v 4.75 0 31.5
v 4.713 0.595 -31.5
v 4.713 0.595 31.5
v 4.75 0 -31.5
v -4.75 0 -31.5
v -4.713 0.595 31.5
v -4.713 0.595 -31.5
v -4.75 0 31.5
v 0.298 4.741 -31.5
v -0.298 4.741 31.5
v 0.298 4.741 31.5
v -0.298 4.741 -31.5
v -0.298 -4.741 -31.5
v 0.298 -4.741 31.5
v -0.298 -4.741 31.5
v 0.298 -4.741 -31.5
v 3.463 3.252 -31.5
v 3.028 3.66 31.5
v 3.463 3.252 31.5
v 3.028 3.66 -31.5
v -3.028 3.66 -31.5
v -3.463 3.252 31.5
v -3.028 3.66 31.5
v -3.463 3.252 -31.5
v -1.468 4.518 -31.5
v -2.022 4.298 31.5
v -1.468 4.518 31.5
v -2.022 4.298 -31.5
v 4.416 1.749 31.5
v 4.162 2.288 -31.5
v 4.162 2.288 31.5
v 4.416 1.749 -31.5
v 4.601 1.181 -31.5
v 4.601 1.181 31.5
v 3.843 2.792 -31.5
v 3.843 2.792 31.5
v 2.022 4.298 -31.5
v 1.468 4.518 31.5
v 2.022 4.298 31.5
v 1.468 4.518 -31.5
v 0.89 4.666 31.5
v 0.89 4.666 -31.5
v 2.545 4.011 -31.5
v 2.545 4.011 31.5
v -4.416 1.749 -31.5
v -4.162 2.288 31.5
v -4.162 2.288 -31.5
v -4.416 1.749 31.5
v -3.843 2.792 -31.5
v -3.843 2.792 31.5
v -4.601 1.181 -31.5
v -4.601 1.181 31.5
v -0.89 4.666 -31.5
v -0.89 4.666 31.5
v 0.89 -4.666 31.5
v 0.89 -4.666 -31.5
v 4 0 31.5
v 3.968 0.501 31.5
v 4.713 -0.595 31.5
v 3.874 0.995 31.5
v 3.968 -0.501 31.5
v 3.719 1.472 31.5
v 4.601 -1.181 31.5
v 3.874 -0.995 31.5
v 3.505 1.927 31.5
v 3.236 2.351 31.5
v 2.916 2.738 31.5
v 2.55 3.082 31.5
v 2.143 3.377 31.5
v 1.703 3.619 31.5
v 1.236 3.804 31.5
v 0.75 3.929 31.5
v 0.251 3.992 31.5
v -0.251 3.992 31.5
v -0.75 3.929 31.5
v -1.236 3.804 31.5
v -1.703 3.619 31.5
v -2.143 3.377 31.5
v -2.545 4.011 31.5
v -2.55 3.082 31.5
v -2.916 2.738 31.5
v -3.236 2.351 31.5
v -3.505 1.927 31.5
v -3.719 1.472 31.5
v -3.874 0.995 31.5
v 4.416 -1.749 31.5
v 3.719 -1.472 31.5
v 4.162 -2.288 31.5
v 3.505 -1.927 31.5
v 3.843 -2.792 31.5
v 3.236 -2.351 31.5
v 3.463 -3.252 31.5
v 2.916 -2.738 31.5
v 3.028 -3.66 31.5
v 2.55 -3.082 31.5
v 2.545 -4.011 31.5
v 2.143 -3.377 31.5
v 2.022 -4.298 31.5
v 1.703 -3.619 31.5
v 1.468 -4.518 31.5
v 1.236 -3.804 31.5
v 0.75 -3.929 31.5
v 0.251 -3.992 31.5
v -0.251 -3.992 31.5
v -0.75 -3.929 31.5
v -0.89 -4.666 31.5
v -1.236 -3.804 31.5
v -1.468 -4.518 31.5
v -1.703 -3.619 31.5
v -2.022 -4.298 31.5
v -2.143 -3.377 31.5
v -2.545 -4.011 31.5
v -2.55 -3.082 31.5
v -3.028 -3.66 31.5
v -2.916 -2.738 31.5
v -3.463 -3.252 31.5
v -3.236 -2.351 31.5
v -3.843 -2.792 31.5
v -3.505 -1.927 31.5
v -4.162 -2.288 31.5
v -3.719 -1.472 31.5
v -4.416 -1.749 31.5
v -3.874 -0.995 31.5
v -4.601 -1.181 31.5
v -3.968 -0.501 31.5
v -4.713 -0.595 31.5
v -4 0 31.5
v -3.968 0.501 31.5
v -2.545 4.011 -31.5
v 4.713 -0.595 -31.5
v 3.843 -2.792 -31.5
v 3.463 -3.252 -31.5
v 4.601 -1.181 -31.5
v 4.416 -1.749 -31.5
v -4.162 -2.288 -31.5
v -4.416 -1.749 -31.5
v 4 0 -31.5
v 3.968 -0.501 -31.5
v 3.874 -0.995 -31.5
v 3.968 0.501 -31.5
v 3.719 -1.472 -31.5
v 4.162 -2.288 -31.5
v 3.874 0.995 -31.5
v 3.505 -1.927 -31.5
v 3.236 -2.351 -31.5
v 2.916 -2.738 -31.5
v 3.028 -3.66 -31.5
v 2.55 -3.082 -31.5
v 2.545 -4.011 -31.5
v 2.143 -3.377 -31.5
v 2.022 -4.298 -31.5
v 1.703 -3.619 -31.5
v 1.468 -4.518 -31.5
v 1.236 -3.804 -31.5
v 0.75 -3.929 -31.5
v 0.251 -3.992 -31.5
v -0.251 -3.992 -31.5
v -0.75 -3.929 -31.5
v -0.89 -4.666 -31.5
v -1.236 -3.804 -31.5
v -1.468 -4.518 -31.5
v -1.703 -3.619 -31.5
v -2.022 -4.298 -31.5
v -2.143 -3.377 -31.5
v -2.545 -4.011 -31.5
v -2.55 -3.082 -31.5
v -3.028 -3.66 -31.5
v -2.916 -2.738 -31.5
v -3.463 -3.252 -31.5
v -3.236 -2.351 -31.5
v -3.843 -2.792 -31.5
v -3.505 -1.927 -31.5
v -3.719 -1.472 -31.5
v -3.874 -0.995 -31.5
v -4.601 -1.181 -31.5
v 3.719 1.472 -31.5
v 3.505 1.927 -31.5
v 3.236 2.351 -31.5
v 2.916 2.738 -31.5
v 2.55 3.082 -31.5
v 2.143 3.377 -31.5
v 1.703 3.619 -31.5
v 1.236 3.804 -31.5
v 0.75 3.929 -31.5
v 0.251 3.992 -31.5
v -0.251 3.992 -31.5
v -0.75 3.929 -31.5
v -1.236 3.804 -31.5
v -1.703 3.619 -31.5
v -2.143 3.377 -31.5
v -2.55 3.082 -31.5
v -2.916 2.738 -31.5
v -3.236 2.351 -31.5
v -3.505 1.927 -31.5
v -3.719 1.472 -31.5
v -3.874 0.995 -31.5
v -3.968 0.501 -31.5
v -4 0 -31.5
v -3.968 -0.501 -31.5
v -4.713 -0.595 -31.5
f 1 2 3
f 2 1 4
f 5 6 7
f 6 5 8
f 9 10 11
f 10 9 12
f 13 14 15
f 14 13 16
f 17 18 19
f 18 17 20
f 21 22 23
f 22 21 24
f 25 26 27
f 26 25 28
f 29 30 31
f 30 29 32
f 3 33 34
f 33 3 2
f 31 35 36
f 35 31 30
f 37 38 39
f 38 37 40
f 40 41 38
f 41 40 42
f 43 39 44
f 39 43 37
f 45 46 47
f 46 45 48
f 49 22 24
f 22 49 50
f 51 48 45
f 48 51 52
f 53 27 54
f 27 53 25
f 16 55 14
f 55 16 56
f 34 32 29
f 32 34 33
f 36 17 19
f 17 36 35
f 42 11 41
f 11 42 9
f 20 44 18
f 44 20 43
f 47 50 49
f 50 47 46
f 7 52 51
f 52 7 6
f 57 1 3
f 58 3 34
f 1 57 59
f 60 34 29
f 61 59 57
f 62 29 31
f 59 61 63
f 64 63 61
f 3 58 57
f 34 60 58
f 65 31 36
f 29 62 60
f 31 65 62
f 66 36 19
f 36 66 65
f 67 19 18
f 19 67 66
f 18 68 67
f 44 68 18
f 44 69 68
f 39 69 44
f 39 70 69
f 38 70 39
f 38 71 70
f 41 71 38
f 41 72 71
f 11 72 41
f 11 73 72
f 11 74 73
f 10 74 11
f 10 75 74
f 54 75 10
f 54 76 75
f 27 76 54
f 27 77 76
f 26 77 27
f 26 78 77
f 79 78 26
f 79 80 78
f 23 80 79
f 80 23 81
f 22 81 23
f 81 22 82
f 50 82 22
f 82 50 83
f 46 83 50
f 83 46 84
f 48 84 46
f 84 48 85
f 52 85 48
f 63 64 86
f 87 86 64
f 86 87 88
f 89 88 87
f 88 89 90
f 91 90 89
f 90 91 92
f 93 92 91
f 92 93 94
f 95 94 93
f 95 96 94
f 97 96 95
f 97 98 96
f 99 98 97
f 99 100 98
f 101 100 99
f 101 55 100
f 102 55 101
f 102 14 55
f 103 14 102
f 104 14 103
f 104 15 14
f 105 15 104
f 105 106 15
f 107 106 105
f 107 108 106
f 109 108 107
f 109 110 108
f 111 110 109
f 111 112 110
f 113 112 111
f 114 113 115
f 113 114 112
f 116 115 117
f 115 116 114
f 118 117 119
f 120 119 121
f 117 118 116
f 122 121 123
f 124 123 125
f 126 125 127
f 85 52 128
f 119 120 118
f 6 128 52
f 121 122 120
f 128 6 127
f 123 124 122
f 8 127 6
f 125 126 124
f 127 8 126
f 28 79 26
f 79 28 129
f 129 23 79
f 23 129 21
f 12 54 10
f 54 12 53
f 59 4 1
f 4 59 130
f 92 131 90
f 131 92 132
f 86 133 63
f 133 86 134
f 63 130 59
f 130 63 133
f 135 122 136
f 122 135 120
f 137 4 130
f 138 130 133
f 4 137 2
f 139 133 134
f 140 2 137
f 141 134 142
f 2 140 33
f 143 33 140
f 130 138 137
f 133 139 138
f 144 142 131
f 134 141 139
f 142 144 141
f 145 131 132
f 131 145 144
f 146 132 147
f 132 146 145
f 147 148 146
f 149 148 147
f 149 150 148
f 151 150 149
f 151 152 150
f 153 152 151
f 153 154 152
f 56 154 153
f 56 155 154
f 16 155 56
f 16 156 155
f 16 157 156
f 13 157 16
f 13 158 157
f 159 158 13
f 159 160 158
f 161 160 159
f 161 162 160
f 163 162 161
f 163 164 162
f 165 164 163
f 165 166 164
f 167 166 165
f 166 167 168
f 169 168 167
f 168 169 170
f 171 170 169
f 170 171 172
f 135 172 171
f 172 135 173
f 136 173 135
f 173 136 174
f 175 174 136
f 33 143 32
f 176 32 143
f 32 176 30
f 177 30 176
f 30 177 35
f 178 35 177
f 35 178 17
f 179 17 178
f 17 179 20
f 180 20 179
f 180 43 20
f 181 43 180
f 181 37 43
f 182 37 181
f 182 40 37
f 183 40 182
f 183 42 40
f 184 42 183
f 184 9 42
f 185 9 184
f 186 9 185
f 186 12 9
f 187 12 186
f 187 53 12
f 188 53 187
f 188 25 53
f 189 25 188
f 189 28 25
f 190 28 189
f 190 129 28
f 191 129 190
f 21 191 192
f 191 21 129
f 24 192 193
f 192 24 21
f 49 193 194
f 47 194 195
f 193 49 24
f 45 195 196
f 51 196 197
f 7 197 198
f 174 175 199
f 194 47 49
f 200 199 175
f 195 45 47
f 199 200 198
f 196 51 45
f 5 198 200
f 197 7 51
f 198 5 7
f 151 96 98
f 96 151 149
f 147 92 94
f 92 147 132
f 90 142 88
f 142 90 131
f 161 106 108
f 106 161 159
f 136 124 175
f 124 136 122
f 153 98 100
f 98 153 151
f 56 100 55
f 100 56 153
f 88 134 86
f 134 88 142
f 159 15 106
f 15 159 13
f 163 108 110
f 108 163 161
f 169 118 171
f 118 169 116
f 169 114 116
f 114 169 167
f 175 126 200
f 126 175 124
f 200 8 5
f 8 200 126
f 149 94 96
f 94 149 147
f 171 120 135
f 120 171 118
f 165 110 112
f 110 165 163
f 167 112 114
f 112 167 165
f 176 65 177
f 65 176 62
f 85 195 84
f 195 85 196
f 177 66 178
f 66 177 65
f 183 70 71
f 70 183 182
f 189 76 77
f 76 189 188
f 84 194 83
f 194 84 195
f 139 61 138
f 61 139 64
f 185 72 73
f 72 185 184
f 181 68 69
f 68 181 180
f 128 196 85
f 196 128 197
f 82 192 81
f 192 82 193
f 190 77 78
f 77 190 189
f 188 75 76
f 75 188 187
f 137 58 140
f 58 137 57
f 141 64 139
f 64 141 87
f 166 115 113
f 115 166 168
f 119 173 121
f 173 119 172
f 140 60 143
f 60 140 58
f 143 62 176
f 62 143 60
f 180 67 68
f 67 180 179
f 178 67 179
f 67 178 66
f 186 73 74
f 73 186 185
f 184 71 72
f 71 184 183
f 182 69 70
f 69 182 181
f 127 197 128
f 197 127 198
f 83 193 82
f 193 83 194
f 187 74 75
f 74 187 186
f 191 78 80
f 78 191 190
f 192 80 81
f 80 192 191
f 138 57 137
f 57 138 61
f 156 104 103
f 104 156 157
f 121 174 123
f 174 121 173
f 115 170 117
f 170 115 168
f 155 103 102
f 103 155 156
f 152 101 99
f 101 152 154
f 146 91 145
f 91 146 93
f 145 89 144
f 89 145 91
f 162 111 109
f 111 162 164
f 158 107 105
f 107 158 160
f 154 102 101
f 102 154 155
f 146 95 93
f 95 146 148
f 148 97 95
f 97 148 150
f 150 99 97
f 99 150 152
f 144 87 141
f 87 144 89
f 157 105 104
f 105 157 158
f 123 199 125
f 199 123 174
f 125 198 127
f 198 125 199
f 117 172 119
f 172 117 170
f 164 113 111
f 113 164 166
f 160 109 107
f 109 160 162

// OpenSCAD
$fn = 50;


difference() {
	union() {
		translate(v = [0, 0, -31.5000000000]) {
			cylinder(h = 63, r = 4.7500000000);
		}
	}
	union() {
		translate(v = [0, 0, -100.0000000000]) {
			cylinder(h = 200, r = 4.0000000000);
		}
	}
}
